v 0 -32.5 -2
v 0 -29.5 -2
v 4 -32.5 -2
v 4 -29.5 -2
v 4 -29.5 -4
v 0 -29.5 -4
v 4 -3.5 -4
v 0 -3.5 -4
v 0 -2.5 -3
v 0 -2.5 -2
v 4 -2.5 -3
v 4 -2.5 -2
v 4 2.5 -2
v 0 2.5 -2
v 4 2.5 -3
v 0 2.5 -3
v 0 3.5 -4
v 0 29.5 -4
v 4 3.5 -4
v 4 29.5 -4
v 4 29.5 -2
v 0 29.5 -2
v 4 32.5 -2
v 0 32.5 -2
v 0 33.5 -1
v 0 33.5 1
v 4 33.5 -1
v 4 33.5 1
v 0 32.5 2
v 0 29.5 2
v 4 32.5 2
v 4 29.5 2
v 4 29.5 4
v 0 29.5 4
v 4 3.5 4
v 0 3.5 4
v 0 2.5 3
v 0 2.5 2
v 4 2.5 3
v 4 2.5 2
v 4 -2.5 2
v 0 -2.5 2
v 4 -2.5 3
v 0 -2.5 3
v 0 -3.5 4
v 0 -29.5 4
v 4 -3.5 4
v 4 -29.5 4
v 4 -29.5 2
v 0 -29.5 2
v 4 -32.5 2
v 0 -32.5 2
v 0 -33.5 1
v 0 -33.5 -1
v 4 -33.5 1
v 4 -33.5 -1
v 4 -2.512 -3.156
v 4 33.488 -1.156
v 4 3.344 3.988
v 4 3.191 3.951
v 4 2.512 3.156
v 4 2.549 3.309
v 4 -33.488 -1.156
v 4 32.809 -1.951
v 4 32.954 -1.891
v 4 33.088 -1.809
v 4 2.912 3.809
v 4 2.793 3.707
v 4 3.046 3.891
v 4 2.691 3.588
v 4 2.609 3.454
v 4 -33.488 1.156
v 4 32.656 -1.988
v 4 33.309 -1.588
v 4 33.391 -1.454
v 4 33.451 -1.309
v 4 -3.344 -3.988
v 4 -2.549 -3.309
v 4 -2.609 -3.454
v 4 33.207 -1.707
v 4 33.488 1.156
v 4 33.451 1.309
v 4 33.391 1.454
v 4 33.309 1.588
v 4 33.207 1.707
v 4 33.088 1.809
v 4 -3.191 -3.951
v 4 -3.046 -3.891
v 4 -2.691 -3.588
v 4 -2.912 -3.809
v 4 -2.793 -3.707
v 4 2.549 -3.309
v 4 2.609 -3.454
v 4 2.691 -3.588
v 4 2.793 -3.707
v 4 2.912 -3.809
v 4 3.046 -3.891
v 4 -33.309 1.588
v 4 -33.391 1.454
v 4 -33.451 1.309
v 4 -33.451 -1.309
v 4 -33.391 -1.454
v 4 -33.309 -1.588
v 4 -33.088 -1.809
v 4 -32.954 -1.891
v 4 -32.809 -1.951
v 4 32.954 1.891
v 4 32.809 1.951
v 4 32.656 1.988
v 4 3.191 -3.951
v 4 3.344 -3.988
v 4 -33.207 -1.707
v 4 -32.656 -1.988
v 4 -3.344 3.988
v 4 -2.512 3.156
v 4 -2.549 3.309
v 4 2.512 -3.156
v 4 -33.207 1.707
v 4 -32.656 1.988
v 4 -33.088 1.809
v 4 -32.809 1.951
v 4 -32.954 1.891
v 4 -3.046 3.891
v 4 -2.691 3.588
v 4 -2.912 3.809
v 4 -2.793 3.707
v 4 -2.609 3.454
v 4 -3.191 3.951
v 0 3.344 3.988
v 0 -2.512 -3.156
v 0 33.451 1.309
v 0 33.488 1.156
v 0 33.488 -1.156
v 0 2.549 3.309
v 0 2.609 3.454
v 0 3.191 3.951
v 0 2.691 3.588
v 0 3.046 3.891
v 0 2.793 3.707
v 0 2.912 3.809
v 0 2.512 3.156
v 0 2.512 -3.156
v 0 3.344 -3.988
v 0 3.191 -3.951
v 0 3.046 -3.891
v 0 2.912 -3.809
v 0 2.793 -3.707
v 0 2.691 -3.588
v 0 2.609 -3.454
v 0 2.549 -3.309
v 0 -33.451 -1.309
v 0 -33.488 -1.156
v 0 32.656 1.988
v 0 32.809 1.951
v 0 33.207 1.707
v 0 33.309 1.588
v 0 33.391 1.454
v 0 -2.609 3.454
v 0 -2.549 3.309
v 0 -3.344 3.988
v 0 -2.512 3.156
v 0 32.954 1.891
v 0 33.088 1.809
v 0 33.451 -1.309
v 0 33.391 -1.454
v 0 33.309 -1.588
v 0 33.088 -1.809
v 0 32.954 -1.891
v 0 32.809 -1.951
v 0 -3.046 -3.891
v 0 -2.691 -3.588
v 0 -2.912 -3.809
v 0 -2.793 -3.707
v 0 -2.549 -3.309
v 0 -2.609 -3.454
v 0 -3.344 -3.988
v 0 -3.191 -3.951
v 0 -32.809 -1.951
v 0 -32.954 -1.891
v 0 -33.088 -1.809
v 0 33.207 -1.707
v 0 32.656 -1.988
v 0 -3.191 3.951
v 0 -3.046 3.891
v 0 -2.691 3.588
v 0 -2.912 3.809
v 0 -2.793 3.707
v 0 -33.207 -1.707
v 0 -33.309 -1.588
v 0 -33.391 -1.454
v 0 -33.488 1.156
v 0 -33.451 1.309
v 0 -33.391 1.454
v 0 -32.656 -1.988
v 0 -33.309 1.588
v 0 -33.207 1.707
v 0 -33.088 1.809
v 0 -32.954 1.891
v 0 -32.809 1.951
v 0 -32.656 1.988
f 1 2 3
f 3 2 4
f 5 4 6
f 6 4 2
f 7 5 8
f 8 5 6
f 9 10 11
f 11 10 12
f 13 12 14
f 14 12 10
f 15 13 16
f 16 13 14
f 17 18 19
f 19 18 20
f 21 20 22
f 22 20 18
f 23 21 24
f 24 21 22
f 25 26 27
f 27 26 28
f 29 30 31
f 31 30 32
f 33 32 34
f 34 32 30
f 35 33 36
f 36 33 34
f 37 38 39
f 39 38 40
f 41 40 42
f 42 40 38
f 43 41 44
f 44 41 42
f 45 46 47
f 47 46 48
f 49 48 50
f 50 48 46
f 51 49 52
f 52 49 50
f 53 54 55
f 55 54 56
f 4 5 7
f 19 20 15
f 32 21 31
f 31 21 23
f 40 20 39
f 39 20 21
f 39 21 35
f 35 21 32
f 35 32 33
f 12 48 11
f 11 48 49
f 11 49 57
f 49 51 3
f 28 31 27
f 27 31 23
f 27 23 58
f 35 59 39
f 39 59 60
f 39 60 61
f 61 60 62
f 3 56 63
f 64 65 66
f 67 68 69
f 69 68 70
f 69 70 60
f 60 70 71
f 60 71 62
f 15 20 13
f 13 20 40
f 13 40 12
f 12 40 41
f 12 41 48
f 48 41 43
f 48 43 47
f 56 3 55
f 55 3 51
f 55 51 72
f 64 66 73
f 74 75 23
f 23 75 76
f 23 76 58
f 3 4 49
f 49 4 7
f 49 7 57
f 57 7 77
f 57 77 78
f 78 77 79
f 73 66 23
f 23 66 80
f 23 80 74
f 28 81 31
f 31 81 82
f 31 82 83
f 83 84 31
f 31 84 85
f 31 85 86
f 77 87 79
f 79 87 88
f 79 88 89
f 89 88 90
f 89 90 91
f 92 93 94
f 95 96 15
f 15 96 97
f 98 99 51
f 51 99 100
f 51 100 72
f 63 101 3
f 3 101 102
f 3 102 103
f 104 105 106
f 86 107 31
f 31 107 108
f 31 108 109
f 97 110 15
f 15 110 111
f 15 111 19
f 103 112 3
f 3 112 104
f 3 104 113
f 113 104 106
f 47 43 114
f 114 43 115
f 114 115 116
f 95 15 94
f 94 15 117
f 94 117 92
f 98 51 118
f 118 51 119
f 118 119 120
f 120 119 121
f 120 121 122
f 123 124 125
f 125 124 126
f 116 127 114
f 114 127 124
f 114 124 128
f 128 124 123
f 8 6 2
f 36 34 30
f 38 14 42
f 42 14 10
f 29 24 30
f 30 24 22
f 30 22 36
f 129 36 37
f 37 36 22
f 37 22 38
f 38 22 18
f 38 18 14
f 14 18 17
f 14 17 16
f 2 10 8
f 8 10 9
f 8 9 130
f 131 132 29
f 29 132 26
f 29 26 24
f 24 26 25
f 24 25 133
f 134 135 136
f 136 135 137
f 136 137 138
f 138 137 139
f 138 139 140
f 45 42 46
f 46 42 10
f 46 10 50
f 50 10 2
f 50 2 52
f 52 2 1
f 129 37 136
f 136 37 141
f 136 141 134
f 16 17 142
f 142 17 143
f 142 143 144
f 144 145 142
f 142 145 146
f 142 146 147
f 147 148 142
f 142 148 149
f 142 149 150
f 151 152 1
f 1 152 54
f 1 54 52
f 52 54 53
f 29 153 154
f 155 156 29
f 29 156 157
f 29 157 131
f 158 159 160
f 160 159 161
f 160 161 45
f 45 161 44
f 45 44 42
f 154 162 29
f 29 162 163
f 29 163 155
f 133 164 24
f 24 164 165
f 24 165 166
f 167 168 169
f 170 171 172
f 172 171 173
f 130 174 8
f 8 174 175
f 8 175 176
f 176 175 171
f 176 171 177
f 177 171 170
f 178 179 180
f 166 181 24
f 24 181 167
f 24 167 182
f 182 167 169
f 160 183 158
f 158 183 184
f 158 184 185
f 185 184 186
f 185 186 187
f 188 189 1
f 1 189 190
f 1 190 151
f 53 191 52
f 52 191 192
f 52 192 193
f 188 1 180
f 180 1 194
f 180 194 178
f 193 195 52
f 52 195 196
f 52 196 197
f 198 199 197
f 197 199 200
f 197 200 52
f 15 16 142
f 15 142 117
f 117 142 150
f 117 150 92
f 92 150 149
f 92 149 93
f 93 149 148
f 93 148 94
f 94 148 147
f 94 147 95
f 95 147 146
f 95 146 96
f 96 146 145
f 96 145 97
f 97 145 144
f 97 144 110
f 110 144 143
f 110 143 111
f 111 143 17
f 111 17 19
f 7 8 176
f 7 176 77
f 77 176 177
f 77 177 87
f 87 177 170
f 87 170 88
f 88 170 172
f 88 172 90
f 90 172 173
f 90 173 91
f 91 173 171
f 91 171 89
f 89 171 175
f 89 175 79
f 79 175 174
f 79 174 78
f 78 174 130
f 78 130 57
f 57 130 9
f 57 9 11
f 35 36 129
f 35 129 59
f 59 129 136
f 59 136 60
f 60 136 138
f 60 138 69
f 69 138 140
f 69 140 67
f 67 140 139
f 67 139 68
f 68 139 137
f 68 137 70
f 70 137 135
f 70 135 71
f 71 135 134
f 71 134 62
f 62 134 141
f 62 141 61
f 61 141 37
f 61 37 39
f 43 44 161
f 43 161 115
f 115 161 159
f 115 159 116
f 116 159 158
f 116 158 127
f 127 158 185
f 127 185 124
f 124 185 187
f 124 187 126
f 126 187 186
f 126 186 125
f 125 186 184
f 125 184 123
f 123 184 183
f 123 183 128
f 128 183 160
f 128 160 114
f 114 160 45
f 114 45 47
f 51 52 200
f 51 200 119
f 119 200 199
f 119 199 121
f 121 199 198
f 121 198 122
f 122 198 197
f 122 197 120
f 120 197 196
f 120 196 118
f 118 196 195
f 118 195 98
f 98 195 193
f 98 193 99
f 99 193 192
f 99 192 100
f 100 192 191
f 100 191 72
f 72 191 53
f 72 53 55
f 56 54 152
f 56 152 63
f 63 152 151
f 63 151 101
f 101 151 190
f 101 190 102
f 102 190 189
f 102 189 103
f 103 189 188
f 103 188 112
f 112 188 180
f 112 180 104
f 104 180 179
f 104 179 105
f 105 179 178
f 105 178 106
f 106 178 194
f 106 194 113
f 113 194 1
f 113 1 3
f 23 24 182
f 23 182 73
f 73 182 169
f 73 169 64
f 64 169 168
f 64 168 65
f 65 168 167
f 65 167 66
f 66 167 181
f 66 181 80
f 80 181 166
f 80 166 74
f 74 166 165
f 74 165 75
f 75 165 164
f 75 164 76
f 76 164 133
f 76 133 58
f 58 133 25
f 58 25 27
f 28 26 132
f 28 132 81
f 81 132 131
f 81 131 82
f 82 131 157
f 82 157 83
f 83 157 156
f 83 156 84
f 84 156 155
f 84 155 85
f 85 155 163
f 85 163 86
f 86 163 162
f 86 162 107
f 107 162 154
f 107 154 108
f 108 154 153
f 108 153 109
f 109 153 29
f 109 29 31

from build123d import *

# Parameters (mm, degrees)
BOSS_EXTRUDE1_DEPTH = 4
FILLET1_R           = 1
FILLET2_R           = 1


with BuildPart() as part:
    # Sketch1 → Boss-Extrude1 (new body)
    with BuildSketch(Plane.YZ):
        Polygon((-33.5, -2), (-33.5, 2), (-29.5, 2), (-29.5, 4), (-2.5, 4), (-2.5, 2), (2.5, 2), (2.5, 4), (29.5, 4), (29.5, 2), (33.5, 2), (33.5, -2), (29.5, -2), (29.5, -4), (2.5, -4), (2.5, -2), (-2.5, -2), (-2.5, -4), (-29.5, -4), (-29.5, -2), align=None)
    extrude(amount=BOSS_EXTRUDE1_DEPTH)

    # Fillet1
    fillet1_edges = [part.edges().sort_by_distance(p)[0] for p in [
        (2, -2.5, 4),
        (2, 2.5, 4),
        (2, 2.5, -4),
        (2, -2.5, -4),
    ]]
    fillet(fillet1_edges, radius=FILLET1_R)

    # Fillet2
    fillet2_edges = [part.edges().sort_by_distance(p)[0] for p in [
        (2, -33.5, -2),
        (2, -33.5, 2),
        (2, 33.5, 2),
        (2, 33.5, -2),
    ]]
    fillet(fillet2_edges, radius=FILLET2_R)


solid = part.part
